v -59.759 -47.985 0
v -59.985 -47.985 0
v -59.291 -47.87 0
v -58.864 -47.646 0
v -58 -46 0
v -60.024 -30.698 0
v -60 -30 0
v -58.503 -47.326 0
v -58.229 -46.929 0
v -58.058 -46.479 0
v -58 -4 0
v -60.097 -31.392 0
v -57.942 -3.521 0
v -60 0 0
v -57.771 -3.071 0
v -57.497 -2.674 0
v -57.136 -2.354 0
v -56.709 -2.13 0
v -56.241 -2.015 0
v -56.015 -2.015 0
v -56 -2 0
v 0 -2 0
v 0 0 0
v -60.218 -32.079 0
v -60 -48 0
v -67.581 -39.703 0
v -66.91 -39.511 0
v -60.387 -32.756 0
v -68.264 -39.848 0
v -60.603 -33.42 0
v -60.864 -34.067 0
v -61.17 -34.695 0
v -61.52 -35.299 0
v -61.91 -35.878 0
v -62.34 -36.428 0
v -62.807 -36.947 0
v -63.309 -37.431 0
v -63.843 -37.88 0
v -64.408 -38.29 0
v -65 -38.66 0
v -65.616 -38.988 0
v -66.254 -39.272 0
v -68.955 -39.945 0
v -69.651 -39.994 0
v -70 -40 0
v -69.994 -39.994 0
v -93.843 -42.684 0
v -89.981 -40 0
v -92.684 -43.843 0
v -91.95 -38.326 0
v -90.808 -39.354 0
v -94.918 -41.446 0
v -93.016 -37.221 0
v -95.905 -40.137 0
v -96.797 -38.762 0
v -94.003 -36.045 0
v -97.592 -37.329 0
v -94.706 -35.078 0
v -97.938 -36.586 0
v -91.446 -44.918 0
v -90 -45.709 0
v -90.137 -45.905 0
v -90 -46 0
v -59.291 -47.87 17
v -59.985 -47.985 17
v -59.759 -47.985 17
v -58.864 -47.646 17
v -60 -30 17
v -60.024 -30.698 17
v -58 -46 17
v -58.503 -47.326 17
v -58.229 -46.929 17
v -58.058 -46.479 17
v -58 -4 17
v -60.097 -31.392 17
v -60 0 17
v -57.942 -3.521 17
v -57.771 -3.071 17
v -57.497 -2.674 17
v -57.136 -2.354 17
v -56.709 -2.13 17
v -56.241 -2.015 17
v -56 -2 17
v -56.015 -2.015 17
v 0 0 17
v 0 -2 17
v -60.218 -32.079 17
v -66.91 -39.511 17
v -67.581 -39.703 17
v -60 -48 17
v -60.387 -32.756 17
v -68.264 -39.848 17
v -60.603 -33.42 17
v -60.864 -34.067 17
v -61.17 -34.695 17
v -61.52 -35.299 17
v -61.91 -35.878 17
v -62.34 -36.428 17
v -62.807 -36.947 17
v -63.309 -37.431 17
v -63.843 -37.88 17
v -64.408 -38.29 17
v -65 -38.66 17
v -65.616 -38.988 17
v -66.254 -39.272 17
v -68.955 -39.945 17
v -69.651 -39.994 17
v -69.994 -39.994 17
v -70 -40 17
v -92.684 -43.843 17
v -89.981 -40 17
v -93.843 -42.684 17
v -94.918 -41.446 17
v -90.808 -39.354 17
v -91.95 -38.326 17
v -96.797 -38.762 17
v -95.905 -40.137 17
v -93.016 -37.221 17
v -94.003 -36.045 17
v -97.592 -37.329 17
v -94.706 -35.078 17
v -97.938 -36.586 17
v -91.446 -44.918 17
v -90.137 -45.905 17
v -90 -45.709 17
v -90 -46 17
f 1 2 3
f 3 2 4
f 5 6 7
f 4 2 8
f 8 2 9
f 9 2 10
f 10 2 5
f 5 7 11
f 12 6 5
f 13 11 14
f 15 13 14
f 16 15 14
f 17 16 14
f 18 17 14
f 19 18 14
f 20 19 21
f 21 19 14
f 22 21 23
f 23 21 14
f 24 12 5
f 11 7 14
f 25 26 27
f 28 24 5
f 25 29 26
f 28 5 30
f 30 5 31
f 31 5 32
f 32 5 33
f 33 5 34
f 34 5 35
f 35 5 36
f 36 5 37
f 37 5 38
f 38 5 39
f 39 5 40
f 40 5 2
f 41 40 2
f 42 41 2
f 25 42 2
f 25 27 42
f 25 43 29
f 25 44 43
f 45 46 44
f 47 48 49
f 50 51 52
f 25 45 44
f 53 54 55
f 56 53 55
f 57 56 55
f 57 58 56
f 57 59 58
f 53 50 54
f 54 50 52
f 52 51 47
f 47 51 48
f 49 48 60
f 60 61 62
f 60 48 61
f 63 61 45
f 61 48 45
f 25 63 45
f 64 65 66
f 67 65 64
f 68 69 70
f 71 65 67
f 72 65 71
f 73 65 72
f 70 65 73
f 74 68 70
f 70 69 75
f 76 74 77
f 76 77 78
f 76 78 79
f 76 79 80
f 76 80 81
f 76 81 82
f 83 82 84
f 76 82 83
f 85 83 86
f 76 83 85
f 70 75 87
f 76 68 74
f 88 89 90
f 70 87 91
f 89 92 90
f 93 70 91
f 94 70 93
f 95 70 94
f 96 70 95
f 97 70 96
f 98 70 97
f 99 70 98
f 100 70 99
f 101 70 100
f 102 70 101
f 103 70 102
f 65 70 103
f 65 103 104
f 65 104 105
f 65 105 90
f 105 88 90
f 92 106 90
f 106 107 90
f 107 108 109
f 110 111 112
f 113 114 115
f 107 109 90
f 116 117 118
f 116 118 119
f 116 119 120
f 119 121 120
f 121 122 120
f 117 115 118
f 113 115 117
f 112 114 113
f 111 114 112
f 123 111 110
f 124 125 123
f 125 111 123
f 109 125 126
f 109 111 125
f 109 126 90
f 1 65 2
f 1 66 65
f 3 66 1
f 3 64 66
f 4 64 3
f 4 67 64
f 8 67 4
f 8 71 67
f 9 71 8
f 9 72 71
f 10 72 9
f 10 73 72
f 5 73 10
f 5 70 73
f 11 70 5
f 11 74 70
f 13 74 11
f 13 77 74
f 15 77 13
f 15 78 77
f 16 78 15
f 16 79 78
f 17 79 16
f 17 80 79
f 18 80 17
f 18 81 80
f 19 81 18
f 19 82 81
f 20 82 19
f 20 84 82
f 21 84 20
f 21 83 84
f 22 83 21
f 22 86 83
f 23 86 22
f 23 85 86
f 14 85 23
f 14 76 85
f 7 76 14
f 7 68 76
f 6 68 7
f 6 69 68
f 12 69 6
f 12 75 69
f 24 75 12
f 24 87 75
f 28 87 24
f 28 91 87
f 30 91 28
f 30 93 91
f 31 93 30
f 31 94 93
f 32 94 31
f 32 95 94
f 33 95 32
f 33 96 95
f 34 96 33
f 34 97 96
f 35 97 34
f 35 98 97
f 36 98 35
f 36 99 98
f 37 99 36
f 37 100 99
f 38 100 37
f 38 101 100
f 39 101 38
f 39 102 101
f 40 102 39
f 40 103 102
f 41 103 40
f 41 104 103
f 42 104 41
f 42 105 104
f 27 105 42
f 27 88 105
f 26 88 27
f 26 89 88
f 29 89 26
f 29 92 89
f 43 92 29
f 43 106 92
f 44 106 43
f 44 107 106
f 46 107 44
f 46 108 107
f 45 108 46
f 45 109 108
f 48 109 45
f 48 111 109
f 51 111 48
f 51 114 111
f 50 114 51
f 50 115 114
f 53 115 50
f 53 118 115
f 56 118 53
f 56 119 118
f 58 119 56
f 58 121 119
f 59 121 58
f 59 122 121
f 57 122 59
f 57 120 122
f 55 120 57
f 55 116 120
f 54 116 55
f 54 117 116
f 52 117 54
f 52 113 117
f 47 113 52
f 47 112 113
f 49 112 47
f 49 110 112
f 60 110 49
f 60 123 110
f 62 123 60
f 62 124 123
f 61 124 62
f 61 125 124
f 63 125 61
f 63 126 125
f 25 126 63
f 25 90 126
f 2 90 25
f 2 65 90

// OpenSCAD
// file: arc.scad
//==============================================================================
// (C) COPYRIGHT 2018 TPSEC
// File: MyMonitorHook.scad
//
//
//=============================================================================

/** @defgroup MyMonitorHook Platform to hook the headphones in left/right side of monitor
 *  @ingroup MyMonitorHook
 *  @brief \n

	@details


	Written by Eusebio Tebar
	mailto:etebar AT tpsec DOT com DOT es

	Current version:
	v. 1.0:
 @{
 */

 /**
	@ingroup  MonitorHook
	Desing Status. This definition is used for design status traceability\n
	- Code	 -> State
	- 0x0000 -> Template
	- 0x0001 -> Preliminary
	- 0x0010 -> Debug
	- 0x0100 -> Test
	- 0x1000 -> Release
*/

//MyMonitorHook				(0x0000)

/****************************************************************************
	Parameters
****************************************************************************/

/****************************************************************************
	Modules
****************************************************************************/

module arc180(radius, angle){
	rotate(a = angle, v= [0,0,1])
	difference(){
		circle(radius);
		//rotate(a = angle, v= [0,0,1])
			translate([-radius,0,0])
				square([2*radius,radius],false);
		rotate(a = 90 - angle, v= [0,0,1])
			translate([-radius,-radius,0])
				square([radius,2*radius],false);
	}
}


/****************************************************************************
	Render
****************************************************************************/
// rotate(a = 10, v= [0,0,1])
// 	arc180(10,10);


/*
|| @changelog
|| | Issue		Date		Name			Comment
|| | --------	-----------	------------	---------------------------------
|| | 1.0.0.X 	17/01/2019 - E. Tebar : 	Initial Release
|| #
*/
/***************************************************************************/
/** @} */ /*	End of file */
/***************************************************************************/
// main file
//==============================================================================
// (C) COPYRIGHT 2018 TPSEC
// File: MyMonitorHook.scad
//
//
//=============================================================================

/** @defgroup MyMonitorHook Platform to hook the headphones in left/right side of monitor
 *  @ingroup MyMonitorHook
 *  @brief \n

	@details


	Written by Eusebio Tebar
	mailto:etebar AT tpsec DOT com DOT es

	Current version:
	v. 1.0:
 @{
 */

 /**
	@ingroup  MonitorHook
	Desing Status. This definition is used for design status traceability\n
	- Code	 -> State
	- 0x0000 -> Template
	- 0x0001 -> Preliminary
	- 0x0010 -> Debug
	- 0x0100 -> Test
	- 0x1000 -> Release
*/

//MyMonitorHook				(0x1000)
include <arc.scad>
/****************************************************************************
	Parameters
****************************************************************************/

/* [Hidden] */
$fa = 4;
$fs = 0.5;



hookThickness	= 2;
MonitorHeight	= 17;
hookHeight 		= 30;
hookLength		= 20;
topLength 		= 2*hookHeight;
topBezel 		= hookThickness;
r34 			= 10;
r56 			= 10;
r67 			= 16;
r89				= topBezel;
r1011			= 2;

// arcUpCrochet	= 8*r56;
// angleUpCrochet	= 200;									// TODO link with hookLength and hookHeight
arcUpCrochet		= 65;
angleUpCrochet		= 205;
echo(arcUpCrochet,angleUpCrochet);

// arcDownCrochet		= 3.5*r56;
// angleDownCrochet	= 190;
arcDownCrochet		= 30;
angleDownCrochet	= 205;
echo(arcDownCrochet,angleDownCrochet);



/****************************************************************************
	Modules
****************************************************************************/
						
p1x = 0;												p1y = 0;											// echo("p1x  :",p1x ,"p1y :",p1y );	
p2x = p1x-topLength;									p2y = 0;											// echo("p2x  :",p2x ,"p2y :",p2y );	
p3x = p2x;												p3y = p2y - hookHeight;								// echo("p3x  :",p3x ,"p3y :",p3y );	
p4x = p3x - r34;										p4y = p3y - r34;									// echo("p4x  :",p4x ,"p4y :",p4y );	
p5x = p4x - hookLength;									p5y = p4y;											// echo("p5x  :",p5x ,"p5y :",p5y );	
p6x = p5x - r56;										p6y = p5y + r56;									// echo("p6x  :",p6x ,"p6y :",p6y );	
p7x = p5x;												p7y = p5y - (r67-r56);								// echo("p7x  :",p7x ,"p7y :",p7y );	
p8x = p2x;												p8y = p7y - r89;									// echo("p8x  :",p8x ,"p8y :",p8y );	
p9x = p8x + r89;										p9y = p7y;											// echo("p9x  :",p9x ,"p9y :",p9y );	
p10x = p9x;												p10y = -topBezel - r1011;							// echo("p10x :",p10x,"p10y:",p10y);	
p11x = p10x + r1011;									p11y = -topBezel ;									// echo("p11x :",p11x,"p11y:",p11y);	
p12x = p1x;												p12y = p11y;										// echo("p12x :",p12x,"p12y:",p12y);	


pUpCrochetCenterx = p4x - (1*hookLength/3);				pUpCrochetCentery = p6y + (hookHeight/4);			// echo("pUpCrochetCenterx :",pUpCrochetCenterx,"pUpCrochetCentery:",pUpCrochetCentery);	
pDownCrochetCenterx = p4x - (1*hookLength/3);			pDownCrochetCentery = - (8*hookHeight/9);			// echo("pDownCrochetCenterx :",pDownCrochetCenterx,"pDownCrochetCentery:",pDownCrochetCentery);	


Ux = p5x - pUpCrochetCenterx;																				// echo("Ux",Ux);
Uy = p5y - pUpCrochetCentery;																				// echo("Uy",Uy);
pUpCrochetRadio = sqrt((Ux*Ux)+(Uy*Uy));																	// echo("pDownCrochetRadio",pDownCrochetRadio);


Dx = p7x - pDownCrochetCenterx;																				// echo("Dx",Dx);
Dy = p7y - pDownCrochetCentery;																				// echo("Dy",Dy);
pDownCrochetRadio = sqrt((Dx*Dx)+(Dy*Dy));																	// echo("pDownCrochetRadio",pDownCrochetRadio);

// Side Profile in 2D
module Side_Profile() {

difference(){
	union(){
		polygon	([
				[p1x,p1y],	[p2x,p2y],	[p3x,p3y],	[p4x,p4y],	[p5x,p5y],	//[p6x,p6y],
				[p7x,p7y],	[p8x,p8y],	[p9x,p9y],	[p10x,p10y],[p11x,p11y],[p12x,p12y],
				[p1x,p1y]
				]);

		translate([p8x,p9y,0])
			rotate(a = -90, v= [0,0,1])
				arc180(r89,90);

		Crochet();
		}
	translate([p4x,p3y,0])
		rotate(a = -90, v= [0,0,1])
			arc180(r34,90);

	translate([p11x,p10y,0])
		rotate(a = 90, v= [0,0,1])
			arc180(r1011,90);

	}
}

module Crochet(){

	difference(){
		translate([pDownCrochetCenterx,pDownCrochetCentery,0])
		  	rotate(a = angleDownCrochet, v= [0,0,1])
		 	 	 arc180(pDownCrochetRadio,arcDownCrochet);

		translate([pUpCrochetCenterx,pUpCrochetCentery,0])
		 	rotate(a = angleUpCrochet, v= [0,0,1])
		 	 	 arc180(pUpCrochetRadio,arcUpCrochet);
		}
}

module Hook(){
	difference(){
	// Profile extruded
	linear_extrude(height = MonitorHeight) 
	 	Side_Profile();
	}
}

/****************************************************************************
	Render
****************************************************************************/
Hook();
		


/*
|| @changelog
|| | Issue		Date		Name			Comment
|| | --------	-----------	------------	---------------------------------
|| | 1.0.0.X 	19/01/2019 - E. Tebar : 	Initial Release
|| | 2.0.0.X 	25/01/2019 - E. Tebar : 	Change design
|| #
*/
/***************************************************************************/
/** @} */ /*	End of file */
/***************************************************************************/
